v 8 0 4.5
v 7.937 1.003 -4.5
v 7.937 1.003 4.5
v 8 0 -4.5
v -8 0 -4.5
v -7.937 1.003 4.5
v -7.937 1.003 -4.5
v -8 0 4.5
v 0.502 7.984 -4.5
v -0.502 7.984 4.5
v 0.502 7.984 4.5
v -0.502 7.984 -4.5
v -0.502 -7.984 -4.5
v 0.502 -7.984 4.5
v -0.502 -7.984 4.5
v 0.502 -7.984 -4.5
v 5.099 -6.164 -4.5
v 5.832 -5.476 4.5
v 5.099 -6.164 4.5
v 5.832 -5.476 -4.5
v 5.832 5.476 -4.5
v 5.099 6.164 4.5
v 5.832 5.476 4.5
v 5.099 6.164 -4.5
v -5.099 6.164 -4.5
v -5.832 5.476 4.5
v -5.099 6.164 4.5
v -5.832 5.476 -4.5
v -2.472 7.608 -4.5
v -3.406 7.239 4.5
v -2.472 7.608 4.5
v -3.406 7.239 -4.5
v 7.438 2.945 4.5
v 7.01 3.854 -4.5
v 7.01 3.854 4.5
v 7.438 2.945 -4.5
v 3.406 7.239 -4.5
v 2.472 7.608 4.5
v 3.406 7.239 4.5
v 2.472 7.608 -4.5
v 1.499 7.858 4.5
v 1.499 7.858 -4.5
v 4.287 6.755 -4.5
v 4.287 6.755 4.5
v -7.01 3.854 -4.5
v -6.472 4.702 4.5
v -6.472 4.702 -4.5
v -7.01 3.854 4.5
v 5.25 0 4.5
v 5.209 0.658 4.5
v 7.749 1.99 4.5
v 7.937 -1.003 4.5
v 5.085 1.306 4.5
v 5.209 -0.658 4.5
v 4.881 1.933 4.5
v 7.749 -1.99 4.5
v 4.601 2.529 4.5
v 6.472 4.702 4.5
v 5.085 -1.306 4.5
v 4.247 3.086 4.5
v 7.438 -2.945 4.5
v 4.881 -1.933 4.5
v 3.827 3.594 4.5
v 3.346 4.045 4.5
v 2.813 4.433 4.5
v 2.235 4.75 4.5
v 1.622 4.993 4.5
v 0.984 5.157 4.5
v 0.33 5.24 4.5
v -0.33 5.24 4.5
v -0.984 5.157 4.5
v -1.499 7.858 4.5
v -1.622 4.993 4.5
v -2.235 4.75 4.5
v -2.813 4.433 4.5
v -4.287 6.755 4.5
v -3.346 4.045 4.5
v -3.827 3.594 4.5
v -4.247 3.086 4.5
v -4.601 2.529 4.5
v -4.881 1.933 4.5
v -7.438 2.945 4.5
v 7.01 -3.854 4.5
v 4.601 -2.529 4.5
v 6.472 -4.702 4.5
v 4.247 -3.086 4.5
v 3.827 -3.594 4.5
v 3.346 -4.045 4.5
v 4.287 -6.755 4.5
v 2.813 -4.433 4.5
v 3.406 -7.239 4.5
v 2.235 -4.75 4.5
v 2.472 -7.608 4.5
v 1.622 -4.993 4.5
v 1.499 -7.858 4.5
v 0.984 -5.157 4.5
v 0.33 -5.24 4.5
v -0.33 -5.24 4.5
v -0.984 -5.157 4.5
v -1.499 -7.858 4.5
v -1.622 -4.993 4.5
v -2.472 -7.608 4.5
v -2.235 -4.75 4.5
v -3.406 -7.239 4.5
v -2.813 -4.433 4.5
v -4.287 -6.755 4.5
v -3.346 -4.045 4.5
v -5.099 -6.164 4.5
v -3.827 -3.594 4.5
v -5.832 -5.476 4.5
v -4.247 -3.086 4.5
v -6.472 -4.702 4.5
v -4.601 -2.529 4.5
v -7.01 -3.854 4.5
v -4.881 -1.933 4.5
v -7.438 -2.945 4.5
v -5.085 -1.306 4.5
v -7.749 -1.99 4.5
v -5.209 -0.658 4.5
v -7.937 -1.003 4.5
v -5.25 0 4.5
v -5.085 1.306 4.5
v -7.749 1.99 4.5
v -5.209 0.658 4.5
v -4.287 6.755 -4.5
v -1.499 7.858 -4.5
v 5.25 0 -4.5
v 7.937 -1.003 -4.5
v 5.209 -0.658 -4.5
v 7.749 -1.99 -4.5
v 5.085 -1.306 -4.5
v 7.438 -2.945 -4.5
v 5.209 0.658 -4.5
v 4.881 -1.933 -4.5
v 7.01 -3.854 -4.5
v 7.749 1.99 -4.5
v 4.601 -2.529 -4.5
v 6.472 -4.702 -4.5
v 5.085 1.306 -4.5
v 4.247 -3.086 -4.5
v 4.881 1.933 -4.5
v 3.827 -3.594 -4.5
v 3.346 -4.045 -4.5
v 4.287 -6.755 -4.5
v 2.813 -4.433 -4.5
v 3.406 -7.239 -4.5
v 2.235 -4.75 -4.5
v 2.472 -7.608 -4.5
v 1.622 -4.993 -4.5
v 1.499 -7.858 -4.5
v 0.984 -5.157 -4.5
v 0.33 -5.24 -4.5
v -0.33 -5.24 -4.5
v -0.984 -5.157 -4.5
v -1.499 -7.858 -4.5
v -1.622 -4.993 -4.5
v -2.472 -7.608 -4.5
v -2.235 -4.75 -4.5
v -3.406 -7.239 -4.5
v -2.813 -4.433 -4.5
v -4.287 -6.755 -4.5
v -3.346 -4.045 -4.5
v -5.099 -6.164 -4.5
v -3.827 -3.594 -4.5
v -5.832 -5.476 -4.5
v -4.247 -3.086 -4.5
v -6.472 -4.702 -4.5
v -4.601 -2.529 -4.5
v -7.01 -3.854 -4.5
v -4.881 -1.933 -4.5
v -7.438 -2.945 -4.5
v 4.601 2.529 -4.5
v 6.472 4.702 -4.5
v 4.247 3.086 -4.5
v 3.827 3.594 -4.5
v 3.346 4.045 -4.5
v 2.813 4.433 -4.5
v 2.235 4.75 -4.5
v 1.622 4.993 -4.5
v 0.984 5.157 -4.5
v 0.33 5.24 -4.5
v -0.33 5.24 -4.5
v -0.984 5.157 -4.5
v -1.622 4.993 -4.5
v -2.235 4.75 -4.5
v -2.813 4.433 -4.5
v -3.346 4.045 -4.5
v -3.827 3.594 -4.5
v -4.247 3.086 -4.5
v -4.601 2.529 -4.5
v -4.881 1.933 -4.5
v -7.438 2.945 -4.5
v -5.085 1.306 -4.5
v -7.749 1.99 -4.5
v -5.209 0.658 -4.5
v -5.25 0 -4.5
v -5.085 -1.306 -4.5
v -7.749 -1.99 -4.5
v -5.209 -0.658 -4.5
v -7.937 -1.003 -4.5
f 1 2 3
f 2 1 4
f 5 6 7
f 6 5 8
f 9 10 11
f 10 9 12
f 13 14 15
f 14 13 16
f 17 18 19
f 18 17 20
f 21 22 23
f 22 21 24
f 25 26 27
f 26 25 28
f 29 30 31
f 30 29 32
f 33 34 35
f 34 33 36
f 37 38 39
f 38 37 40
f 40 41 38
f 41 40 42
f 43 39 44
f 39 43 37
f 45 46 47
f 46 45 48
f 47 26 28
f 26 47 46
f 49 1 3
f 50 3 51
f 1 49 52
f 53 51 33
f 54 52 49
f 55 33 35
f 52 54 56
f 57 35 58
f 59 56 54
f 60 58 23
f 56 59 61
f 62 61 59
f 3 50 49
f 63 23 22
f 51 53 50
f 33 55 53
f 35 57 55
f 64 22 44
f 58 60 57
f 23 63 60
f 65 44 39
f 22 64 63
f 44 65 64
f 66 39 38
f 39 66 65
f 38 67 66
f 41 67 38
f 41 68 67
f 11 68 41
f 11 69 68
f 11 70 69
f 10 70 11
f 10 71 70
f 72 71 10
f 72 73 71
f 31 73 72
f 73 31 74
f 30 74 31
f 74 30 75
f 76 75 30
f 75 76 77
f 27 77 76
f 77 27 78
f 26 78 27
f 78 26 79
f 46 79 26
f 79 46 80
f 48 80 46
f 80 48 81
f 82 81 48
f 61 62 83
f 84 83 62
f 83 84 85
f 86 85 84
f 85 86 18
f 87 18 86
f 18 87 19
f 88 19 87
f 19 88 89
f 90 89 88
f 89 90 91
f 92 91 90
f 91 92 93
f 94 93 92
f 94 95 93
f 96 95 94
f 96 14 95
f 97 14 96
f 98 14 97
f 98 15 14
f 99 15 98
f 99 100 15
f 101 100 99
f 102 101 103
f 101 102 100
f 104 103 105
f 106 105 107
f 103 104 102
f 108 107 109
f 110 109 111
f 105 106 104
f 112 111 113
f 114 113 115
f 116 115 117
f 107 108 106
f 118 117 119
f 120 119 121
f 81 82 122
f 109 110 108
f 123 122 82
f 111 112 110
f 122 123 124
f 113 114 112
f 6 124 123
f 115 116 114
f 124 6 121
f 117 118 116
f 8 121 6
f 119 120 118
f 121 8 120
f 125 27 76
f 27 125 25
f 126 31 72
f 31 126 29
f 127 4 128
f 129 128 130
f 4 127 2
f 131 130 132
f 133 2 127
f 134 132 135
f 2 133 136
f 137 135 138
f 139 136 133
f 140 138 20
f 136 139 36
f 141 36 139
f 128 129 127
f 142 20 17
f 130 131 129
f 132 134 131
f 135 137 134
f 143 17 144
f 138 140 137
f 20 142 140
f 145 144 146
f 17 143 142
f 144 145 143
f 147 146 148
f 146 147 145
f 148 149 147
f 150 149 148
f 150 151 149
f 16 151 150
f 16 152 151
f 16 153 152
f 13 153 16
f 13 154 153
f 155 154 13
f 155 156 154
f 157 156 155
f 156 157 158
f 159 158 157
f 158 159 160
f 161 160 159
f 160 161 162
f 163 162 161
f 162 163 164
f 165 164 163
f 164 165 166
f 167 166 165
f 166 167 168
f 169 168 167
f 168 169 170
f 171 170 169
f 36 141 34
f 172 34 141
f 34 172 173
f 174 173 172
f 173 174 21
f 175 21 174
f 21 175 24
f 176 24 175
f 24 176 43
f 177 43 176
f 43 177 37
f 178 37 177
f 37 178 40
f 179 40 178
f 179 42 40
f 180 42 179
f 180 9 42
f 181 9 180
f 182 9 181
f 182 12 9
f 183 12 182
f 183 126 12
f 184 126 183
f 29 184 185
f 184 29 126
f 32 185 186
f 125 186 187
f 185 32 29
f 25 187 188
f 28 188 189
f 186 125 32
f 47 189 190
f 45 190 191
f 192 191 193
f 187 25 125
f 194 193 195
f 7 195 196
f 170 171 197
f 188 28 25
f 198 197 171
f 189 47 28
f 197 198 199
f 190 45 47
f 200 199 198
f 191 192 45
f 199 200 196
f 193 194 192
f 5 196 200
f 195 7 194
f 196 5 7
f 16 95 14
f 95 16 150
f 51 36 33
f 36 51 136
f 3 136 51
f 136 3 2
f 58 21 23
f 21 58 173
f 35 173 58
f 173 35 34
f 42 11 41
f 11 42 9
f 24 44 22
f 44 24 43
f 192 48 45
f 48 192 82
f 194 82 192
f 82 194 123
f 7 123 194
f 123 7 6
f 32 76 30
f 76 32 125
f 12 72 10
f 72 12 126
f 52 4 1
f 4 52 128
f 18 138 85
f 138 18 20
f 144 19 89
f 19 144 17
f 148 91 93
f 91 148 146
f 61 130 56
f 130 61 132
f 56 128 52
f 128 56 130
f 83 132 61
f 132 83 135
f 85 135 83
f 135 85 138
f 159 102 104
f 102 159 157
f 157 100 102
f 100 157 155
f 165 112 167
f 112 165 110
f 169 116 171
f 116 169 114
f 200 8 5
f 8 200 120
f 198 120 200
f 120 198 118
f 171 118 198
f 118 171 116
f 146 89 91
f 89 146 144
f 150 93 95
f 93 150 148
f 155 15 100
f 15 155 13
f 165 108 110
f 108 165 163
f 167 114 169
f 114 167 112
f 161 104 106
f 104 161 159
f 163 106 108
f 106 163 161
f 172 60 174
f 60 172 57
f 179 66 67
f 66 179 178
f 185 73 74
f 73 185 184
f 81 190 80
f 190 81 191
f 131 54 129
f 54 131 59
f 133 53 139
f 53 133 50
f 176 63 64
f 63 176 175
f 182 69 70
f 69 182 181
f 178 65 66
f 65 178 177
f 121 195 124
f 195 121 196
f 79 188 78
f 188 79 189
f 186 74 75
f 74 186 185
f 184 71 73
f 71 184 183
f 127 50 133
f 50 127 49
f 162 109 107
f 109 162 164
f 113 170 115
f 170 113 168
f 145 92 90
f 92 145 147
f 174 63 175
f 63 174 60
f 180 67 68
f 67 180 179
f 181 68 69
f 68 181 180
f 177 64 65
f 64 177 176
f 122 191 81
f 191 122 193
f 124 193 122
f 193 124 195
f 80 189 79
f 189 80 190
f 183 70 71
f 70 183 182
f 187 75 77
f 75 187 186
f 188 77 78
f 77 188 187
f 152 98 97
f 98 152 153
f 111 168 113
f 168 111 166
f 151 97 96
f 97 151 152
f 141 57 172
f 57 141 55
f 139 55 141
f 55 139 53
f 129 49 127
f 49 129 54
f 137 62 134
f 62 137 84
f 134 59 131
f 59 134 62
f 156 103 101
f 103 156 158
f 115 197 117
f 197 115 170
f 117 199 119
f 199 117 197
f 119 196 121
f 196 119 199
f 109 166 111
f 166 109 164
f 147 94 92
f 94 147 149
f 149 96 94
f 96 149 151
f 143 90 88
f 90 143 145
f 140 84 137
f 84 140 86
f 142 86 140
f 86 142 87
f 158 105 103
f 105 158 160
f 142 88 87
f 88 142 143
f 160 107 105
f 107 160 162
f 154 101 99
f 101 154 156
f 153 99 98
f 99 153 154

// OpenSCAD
$fn = 50;


difference() {
	union() {
		translate(v = [0, 0, -4.5000000000]) {
			cylinder(h = 9, r = 8.0000000000);
		}
	}
	union() {
		translate(v = [0, 0, -100.0000000000]) {
			cylinder(h = 200, r = 5.2500000000);
		}
	}
}
